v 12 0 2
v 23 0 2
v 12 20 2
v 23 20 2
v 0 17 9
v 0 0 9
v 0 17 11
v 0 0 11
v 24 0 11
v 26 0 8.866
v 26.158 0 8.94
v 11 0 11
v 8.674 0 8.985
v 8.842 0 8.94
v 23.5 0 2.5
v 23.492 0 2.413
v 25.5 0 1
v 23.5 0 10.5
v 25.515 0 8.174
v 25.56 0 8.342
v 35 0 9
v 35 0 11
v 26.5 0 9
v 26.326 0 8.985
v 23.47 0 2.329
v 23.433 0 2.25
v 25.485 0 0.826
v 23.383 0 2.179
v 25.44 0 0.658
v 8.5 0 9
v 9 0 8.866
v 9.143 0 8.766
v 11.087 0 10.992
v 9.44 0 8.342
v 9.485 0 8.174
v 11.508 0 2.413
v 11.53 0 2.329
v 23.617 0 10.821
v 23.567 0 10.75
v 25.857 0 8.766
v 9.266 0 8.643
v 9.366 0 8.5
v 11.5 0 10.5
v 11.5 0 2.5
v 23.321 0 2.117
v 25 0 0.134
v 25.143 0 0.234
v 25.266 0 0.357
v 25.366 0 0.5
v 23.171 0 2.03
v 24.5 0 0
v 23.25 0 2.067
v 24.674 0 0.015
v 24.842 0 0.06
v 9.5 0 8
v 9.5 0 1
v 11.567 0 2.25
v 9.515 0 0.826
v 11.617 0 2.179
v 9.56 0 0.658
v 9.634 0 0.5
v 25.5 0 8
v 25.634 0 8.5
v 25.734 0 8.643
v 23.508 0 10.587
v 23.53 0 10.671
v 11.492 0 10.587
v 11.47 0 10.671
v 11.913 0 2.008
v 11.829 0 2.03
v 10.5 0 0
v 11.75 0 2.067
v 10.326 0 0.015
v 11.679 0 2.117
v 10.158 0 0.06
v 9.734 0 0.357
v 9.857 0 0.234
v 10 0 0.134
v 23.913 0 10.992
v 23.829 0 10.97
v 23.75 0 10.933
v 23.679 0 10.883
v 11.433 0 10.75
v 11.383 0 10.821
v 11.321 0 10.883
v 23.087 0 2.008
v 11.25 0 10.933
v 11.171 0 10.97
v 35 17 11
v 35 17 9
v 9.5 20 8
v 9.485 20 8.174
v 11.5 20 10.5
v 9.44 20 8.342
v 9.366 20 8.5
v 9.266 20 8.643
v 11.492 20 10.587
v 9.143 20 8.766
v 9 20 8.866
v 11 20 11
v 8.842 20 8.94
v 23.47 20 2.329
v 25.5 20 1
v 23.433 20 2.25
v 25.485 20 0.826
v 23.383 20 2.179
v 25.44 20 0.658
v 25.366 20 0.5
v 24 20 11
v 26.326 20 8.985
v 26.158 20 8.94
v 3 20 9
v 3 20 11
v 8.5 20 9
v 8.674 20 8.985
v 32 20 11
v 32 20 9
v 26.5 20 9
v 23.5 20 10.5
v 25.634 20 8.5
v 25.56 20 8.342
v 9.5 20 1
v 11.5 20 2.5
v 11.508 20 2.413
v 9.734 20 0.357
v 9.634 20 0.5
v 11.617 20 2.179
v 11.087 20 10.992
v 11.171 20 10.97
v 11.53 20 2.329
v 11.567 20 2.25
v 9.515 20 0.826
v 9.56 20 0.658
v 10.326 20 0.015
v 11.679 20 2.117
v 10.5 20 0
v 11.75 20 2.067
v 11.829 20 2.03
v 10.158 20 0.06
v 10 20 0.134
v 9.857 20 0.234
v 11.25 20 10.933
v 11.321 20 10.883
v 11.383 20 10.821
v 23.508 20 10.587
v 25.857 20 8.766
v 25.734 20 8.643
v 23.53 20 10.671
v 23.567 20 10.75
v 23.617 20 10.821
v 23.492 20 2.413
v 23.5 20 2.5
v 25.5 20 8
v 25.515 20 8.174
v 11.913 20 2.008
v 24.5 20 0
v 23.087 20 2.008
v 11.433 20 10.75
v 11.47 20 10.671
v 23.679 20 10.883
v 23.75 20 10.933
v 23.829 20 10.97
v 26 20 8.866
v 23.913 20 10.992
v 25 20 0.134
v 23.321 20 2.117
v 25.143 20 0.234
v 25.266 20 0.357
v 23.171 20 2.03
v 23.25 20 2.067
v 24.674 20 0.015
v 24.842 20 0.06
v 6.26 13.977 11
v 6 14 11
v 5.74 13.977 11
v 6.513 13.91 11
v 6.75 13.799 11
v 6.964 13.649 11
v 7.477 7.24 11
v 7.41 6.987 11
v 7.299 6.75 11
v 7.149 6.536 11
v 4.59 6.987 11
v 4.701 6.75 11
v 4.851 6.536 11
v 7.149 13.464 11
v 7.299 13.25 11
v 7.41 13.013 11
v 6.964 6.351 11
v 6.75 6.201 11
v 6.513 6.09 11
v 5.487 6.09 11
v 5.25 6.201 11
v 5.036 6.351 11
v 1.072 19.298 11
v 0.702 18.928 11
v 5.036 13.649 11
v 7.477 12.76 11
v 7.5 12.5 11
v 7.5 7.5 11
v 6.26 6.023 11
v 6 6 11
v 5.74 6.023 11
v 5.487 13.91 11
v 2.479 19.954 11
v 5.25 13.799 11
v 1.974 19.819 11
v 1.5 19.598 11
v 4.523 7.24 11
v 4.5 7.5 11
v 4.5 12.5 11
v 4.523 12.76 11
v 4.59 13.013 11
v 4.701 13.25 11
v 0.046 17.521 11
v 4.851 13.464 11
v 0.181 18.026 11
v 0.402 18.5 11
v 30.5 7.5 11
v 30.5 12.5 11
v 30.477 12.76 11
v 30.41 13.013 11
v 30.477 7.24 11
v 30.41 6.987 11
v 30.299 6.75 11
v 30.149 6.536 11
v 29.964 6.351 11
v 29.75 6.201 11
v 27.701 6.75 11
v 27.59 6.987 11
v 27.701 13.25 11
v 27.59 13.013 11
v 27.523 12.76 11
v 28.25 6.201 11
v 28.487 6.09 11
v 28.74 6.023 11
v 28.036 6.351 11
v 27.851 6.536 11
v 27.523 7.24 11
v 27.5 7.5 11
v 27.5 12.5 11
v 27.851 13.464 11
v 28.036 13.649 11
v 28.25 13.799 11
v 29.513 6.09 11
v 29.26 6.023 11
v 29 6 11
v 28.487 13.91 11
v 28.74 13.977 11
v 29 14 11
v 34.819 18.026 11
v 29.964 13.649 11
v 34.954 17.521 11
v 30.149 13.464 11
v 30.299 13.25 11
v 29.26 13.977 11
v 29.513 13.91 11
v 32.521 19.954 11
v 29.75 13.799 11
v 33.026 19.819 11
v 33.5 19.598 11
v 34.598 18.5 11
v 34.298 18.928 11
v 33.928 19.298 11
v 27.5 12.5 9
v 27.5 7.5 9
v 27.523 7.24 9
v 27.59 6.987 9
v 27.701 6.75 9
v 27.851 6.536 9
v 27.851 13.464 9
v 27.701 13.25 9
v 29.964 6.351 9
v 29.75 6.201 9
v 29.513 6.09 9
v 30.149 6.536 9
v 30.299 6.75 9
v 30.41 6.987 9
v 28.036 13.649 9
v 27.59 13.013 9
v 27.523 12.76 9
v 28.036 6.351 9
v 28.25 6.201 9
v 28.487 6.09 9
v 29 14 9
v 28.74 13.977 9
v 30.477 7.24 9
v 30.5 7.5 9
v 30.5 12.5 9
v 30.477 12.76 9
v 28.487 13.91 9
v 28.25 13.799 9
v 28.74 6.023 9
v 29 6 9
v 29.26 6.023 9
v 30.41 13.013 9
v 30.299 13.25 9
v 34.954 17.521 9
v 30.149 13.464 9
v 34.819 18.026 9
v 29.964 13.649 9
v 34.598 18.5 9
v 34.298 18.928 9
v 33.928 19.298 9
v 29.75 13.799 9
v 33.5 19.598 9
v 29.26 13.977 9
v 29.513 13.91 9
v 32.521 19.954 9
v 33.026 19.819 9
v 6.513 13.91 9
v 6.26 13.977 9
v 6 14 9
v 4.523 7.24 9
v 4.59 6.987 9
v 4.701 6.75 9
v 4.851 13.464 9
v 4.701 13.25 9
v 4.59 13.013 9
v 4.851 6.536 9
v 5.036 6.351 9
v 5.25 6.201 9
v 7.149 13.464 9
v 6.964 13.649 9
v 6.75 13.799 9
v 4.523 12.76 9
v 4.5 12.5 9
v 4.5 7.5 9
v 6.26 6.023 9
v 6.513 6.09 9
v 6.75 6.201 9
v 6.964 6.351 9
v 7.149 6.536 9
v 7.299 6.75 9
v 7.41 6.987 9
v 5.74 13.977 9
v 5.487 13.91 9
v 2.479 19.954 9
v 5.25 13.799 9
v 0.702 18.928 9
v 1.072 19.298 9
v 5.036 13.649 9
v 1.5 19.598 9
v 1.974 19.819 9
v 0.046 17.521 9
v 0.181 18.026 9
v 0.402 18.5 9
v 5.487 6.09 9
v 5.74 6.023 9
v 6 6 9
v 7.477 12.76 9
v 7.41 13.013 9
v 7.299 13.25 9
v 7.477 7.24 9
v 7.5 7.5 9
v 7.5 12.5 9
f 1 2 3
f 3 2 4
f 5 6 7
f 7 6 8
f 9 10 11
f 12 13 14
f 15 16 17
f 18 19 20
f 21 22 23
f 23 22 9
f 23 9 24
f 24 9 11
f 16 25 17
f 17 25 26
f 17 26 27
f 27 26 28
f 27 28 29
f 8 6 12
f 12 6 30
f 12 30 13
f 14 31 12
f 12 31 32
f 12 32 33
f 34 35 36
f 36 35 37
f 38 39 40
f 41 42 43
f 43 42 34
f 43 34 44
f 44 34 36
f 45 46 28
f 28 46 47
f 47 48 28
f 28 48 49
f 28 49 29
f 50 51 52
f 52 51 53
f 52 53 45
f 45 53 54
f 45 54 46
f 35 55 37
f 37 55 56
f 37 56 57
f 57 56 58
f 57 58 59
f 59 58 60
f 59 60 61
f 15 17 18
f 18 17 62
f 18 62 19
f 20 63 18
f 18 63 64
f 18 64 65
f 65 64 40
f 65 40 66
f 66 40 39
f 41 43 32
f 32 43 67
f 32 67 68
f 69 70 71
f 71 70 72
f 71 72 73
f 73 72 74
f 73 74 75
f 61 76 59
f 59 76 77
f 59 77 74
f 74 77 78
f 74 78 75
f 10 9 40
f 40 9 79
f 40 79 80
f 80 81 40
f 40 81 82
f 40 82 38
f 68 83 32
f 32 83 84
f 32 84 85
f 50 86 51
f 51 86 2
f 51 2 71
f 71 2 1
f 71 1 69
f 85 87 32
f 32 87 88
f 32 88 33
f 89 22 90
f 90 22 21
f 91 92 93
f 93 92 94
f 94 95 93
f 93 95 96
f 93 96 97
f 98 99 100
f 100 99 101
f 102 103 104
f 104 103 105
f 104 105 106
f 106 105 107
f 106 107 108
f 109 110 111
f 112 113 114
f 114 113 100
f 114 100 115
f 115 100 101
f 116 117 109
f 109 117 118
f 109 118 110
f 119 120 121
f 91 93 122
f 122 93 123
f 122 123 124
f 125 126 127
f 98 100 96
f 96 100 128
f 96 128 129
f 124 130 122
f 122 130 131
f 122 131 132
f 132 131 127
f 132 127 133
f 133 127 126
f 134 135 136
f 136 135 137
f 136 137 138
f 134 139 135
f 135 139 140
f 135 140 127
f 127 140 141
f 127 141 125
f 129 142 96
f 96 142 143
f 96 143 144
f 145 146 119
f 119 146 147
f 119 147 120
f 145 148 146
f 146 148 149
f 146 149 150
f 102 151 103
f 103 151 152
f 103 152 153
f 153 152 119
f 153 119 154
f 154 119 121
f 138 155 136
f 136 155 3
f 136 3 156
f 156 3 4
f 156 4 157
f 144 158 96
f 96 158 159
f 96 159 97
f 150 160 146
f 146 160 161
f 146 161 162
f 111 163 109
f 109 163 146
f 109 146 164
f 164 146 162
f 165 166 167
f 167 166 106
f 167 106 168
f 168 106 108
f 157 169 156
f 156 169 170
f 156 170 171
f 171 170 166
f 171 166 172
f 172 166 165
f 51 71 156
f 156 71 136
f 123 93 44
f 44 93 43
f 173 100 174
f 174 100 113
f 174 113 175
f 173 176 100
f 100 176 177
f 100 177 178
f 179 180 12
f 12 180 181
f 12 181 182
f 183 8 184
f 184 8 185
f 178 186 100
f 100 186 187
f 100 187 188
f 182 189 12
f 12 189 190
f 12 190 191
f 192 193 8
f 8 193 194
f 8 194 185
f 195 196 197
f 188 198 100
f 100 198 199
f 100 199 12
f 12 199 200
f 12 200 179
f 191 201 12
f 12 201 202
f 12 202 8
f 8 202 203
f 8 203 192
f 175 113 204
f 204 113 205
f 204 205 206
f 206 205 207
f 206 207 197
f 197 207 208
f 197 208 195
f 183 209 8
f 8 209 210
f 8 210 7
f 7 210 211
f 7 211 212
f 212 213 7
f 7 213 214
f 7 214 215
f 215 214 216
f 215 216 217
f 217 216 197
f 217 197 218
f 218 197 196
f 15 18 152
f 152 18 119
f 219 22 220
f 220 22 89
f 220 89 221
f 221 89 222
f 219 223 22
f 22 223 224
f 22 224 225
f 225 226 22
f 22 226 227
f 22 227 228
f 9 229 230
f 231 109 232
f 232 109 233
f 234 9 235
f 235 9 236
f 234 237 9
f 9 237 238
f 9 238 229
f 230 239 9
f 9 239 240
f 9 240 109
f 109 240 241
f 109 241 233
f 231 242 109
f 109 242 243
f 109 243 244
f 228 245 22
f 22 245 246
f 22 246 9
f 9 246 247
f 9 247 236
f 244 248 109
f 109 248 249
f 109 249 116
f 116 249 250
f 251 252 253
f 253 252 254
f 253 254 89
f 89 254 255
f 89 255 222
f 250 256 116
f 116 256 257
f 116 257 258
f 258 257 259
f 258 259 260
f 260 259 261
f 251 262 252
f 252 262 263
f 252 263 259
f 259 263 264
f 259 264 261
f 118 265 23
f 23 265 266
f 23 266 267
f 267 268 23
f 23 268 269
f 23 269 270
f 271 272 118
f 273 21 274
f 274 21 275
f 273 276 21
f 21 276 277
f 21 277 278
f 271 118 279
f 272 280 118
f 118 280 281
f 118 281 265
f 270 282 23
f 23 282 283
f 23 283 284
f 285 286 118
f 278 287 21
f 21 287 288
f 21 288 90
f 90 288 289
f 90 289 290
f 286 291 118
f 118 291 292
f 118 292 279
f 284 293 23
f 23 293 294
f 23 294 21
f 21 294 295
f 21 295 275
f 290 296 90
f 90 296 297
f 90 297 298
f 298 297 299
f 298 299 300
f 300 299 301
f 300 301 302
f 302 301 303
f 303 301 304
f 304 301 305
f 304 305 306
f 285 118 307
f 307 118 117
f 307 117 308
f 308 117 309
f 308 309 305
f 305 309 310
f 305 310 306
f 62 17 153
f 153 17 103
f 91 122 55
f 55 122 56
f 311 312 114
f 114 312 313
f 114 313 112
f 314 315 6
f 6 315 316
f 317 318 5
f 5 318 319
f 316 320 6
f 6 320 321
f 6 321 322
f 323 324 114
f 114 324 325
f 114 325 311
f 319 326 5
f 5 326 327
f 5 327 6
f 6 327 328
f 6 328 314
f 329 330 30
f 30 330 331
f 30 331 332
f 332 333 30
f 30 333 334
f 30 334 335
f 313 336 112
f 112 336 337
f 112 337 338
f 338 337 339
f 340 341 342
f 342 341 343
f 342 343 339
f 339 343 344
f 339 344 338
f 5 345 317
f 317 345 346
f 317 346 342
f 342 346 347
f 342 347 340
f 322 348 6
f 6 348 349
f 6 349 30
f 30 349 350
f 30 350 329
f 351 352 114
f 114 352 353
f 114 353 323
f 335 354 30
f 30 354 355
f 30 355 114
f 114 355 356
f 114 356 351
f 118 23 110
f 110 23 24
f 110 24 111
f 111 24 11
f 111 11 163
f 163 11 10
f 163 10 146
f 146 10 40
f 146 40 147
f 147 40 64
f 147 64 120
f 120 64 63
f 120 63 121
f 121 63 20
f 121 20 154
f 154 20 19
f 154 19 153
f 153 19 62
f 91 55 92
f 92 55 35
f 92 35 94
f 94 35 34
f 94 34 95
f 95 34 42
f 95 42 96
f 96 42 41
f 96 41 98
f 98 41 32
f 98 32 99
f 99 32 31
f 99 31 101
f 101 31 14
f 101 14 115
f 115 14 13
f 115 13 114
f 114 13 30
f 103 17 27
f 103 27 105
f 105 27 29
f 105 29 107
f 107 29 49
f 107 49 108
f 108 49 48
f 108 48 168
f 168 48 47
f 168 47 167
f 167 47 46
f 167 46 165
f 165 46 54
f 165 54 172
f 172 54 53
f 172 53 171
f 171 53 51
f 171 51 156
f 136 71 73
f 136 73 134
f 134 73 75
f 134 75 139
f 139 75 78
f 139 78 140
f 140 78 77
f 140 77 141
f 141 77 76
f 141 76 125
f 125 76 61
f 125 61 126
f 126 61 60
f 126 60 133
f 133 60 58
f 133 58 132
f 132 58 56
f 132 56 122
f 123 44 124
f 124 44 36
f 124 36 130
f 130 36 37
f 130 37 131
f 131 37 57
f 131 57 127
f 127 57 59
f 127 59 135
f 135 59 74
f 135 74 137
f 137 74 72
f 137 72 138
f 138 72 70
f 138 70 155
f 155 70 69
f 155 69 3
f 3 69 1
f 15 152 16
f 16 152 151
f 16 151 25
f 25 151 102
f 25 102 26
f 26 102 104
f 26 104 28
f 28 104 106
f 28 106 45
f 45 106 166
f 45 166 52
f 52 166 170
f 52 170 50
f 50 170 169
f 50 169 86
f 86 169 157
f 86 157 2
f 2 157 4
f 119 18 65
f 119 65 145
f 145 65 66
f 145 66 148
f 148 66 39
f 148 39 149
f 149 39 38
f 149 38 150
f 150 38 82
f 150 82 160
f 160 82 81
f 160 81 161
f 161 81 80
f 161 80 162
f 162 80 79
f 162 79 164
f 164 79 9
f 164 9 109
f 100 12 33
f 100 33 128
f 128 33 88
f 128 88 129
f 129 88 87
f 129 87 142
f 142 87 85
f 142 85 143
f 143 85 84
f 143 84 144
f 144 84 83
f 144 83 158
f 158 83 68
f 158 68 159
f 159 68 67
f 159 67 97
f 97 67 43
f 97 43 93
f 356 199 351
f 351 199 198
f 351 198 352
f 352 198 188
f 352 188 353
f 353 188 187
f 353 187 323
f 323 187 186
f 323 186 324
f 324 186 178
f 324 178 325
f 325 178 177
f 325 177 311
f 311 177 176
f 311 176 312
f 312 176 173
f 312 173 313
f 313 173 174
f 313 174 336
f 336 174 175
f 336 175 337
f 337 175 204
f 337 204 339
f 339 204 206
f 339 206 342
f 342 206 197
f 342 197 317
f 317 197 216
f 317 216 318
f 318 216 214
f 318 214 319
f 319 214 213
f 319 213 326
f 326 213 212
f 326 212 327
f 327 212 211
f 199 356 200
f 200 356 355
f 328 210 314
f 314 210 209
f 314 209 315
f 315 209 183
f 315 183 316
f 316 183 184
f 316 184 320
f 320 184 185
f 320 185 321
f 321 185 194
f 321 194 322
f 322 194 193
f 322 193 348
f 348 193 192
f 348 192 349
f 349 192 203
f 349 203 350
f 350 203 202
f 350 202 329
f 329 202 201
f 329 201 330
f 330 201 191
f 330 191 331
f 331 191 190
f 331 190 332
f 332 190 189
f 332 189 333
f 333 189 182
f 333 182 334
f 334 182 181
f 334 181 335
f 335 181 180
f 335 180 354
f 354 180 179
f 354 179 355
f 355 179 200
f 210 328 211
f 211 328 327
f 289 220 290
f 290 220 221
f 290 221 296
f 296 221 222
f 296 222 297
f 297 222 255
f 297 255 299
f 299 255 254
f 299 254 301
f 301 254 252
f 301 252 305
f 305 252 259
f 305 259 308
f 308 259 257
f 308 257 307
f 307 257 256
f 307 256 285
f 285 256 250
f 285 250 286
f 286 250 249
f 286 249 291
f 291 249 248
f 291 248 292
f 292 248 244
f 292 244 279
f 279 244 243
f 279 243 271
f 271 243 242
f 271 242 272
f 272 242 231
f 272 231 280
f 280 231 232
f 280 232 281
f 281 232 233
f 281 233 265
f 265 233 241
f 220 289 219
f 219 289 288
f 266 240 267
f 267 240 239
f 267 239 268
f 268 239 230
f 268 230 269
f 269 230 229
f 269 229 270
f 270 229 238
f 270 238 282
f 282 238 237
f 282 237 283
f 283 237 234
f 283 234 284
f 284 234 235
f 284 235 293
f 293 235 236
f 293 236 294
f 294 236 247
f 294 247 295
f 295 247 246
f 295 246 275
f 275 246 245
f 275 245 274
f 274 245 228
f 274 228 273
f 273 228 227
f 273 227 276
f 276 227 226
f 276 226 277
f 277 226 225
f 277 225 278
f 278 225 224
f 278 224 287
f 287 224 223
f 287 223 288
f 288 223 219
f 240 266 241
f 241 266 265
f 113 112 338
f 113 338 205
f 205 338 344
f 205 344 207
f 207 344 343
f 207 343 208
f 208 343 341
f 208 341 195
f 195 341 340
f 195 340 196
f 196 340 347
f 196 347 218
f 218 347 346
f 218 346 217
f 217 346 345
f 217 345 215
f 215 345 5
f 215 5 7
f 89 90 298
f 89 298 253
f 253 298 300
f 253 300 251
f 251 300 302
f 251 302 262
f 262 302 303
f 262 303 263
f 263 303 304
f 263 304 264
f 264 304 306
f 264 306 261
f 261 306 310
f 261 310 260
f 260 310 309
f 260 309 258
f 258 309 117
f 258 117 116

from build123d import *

# Parameters (mm, degrees)
SKETCH1_W           = 35
SKETCH1_H           = 20
BOSS_EXTRUDE1_DEPTH = 2
SKETCH4_W           = 11.5
SKETCH4_H           = 20
BOSS_EXTRUDE2_DEPTH = 9
SKETCH5_W           = 9.5
SKETCH5_H           = 9
CUT_EXTRUDE2_DEPTH  = 21
FILLET1_R           = 1
FILLET2_R           = 0.5
CUT_EXTRUDE3_DEPTH  = 12
FILLET3_R           = 3


with BuildPart() as part:
    # Sketch1 → Boss-Extrude1 (new body)
    with BuildSketch(Plane.XY):
        with Locations((17.5, 10)):
            Rectangle(SKETCH1_W, SKETCH1_H)
    extrude(amount=BOSS_EXTRUDE1_DEPTH)

    # Sketch4 → Boss-Extrude2 (add)
    with BuildSketch(Plane.XY.offset(2)):
        with Locations((5.75, 10)):
            Rectangle(SKETCH4_W, SKETCH4_H)
        with Locations((29.25, 10)):
            Rectangle(SKETCH4_W, SKETCH4_H)
    extrude(amount=BOSS_EXTRUDE2_DEPTH)

    # Sketch5 → Cut-Extrude2 (cut, through all)
    with BuildSketch(Plane(origin=(0, 20, 0), x_dir=(1, 0, 0), z_dir=(0, 1, 0))):
        with Locations((4.75, -4.5)):
            Rectangle(SKETCH5_W, SKETCH5_H)
        with Locations((30.25, -4.5)):
            Rectangle(SKETCH5_W, SKETCH5_H)
    extrude(amount=-CUT_EXTRUDE2_DEPTH, mode=Mode.SUBTRACT)

    # Fillet1
    fillet1_edges = [part.edges().sort_by_distance(p)[0] for p in [
        (9.5, 10, 0),
        (9.5, 10, 9),
        (25.5, 10, 9),
        (25.5, 10, 0),
    ]]
    fillet(fillet1_edges, radius=FILLET1_R)

    # Fillet2
    fillet2_edges = [part.edges().sort_by_distance(p)[0] for p in [
        (11.5, 10, 2),
        (11.5, 10, 11),
        (23.5, 10, 2),
        (23.5, 10, 11),
    ]]
    fillet(fillet2_edges, radius=FILLET2_R)

    # Sketch2 → Cut-Extrude3 (cut, through all)
    with BuildSketch(Plane.XY.offset(11)):
        with BuildLine():
            Line((7.5, 12.5), (7.5, 7.5))
            ThreePointArc((7.5, 7.5), (6, 6), (4.5, 7.5))
            Line((4.5, 7.5), (4.5, 12.5))
            ThreePointArc((4.5, 12.5), (6, 14), (7.5, 12.5))
        make_face()
        with BuildLine():
            Line((30.5, 12.5), (30.5, 7.5))
            ThreePointArc((30.5, 7.5), (29, 6), (27.5, 7.5))
            Line((27.5, 7.5), (27.5, 12.5))
            ThreePointArc((27.5, 12.5), (29, 14), (30.5, 12.5))
        make_face()
    extrude(amount=-CUT_EXTRUDE3_DEPTH, mode=Mode.SUBTRACT)

    # Fillet3
    fillet3_edges = [part.edges().sort_by_distance(p)[0] for p in [
        (0, 20, 10),
        (35, 20, 10),
    ]]
    fillet(fillet3_edges, radius=FILLET3_R)


solid = part.part
